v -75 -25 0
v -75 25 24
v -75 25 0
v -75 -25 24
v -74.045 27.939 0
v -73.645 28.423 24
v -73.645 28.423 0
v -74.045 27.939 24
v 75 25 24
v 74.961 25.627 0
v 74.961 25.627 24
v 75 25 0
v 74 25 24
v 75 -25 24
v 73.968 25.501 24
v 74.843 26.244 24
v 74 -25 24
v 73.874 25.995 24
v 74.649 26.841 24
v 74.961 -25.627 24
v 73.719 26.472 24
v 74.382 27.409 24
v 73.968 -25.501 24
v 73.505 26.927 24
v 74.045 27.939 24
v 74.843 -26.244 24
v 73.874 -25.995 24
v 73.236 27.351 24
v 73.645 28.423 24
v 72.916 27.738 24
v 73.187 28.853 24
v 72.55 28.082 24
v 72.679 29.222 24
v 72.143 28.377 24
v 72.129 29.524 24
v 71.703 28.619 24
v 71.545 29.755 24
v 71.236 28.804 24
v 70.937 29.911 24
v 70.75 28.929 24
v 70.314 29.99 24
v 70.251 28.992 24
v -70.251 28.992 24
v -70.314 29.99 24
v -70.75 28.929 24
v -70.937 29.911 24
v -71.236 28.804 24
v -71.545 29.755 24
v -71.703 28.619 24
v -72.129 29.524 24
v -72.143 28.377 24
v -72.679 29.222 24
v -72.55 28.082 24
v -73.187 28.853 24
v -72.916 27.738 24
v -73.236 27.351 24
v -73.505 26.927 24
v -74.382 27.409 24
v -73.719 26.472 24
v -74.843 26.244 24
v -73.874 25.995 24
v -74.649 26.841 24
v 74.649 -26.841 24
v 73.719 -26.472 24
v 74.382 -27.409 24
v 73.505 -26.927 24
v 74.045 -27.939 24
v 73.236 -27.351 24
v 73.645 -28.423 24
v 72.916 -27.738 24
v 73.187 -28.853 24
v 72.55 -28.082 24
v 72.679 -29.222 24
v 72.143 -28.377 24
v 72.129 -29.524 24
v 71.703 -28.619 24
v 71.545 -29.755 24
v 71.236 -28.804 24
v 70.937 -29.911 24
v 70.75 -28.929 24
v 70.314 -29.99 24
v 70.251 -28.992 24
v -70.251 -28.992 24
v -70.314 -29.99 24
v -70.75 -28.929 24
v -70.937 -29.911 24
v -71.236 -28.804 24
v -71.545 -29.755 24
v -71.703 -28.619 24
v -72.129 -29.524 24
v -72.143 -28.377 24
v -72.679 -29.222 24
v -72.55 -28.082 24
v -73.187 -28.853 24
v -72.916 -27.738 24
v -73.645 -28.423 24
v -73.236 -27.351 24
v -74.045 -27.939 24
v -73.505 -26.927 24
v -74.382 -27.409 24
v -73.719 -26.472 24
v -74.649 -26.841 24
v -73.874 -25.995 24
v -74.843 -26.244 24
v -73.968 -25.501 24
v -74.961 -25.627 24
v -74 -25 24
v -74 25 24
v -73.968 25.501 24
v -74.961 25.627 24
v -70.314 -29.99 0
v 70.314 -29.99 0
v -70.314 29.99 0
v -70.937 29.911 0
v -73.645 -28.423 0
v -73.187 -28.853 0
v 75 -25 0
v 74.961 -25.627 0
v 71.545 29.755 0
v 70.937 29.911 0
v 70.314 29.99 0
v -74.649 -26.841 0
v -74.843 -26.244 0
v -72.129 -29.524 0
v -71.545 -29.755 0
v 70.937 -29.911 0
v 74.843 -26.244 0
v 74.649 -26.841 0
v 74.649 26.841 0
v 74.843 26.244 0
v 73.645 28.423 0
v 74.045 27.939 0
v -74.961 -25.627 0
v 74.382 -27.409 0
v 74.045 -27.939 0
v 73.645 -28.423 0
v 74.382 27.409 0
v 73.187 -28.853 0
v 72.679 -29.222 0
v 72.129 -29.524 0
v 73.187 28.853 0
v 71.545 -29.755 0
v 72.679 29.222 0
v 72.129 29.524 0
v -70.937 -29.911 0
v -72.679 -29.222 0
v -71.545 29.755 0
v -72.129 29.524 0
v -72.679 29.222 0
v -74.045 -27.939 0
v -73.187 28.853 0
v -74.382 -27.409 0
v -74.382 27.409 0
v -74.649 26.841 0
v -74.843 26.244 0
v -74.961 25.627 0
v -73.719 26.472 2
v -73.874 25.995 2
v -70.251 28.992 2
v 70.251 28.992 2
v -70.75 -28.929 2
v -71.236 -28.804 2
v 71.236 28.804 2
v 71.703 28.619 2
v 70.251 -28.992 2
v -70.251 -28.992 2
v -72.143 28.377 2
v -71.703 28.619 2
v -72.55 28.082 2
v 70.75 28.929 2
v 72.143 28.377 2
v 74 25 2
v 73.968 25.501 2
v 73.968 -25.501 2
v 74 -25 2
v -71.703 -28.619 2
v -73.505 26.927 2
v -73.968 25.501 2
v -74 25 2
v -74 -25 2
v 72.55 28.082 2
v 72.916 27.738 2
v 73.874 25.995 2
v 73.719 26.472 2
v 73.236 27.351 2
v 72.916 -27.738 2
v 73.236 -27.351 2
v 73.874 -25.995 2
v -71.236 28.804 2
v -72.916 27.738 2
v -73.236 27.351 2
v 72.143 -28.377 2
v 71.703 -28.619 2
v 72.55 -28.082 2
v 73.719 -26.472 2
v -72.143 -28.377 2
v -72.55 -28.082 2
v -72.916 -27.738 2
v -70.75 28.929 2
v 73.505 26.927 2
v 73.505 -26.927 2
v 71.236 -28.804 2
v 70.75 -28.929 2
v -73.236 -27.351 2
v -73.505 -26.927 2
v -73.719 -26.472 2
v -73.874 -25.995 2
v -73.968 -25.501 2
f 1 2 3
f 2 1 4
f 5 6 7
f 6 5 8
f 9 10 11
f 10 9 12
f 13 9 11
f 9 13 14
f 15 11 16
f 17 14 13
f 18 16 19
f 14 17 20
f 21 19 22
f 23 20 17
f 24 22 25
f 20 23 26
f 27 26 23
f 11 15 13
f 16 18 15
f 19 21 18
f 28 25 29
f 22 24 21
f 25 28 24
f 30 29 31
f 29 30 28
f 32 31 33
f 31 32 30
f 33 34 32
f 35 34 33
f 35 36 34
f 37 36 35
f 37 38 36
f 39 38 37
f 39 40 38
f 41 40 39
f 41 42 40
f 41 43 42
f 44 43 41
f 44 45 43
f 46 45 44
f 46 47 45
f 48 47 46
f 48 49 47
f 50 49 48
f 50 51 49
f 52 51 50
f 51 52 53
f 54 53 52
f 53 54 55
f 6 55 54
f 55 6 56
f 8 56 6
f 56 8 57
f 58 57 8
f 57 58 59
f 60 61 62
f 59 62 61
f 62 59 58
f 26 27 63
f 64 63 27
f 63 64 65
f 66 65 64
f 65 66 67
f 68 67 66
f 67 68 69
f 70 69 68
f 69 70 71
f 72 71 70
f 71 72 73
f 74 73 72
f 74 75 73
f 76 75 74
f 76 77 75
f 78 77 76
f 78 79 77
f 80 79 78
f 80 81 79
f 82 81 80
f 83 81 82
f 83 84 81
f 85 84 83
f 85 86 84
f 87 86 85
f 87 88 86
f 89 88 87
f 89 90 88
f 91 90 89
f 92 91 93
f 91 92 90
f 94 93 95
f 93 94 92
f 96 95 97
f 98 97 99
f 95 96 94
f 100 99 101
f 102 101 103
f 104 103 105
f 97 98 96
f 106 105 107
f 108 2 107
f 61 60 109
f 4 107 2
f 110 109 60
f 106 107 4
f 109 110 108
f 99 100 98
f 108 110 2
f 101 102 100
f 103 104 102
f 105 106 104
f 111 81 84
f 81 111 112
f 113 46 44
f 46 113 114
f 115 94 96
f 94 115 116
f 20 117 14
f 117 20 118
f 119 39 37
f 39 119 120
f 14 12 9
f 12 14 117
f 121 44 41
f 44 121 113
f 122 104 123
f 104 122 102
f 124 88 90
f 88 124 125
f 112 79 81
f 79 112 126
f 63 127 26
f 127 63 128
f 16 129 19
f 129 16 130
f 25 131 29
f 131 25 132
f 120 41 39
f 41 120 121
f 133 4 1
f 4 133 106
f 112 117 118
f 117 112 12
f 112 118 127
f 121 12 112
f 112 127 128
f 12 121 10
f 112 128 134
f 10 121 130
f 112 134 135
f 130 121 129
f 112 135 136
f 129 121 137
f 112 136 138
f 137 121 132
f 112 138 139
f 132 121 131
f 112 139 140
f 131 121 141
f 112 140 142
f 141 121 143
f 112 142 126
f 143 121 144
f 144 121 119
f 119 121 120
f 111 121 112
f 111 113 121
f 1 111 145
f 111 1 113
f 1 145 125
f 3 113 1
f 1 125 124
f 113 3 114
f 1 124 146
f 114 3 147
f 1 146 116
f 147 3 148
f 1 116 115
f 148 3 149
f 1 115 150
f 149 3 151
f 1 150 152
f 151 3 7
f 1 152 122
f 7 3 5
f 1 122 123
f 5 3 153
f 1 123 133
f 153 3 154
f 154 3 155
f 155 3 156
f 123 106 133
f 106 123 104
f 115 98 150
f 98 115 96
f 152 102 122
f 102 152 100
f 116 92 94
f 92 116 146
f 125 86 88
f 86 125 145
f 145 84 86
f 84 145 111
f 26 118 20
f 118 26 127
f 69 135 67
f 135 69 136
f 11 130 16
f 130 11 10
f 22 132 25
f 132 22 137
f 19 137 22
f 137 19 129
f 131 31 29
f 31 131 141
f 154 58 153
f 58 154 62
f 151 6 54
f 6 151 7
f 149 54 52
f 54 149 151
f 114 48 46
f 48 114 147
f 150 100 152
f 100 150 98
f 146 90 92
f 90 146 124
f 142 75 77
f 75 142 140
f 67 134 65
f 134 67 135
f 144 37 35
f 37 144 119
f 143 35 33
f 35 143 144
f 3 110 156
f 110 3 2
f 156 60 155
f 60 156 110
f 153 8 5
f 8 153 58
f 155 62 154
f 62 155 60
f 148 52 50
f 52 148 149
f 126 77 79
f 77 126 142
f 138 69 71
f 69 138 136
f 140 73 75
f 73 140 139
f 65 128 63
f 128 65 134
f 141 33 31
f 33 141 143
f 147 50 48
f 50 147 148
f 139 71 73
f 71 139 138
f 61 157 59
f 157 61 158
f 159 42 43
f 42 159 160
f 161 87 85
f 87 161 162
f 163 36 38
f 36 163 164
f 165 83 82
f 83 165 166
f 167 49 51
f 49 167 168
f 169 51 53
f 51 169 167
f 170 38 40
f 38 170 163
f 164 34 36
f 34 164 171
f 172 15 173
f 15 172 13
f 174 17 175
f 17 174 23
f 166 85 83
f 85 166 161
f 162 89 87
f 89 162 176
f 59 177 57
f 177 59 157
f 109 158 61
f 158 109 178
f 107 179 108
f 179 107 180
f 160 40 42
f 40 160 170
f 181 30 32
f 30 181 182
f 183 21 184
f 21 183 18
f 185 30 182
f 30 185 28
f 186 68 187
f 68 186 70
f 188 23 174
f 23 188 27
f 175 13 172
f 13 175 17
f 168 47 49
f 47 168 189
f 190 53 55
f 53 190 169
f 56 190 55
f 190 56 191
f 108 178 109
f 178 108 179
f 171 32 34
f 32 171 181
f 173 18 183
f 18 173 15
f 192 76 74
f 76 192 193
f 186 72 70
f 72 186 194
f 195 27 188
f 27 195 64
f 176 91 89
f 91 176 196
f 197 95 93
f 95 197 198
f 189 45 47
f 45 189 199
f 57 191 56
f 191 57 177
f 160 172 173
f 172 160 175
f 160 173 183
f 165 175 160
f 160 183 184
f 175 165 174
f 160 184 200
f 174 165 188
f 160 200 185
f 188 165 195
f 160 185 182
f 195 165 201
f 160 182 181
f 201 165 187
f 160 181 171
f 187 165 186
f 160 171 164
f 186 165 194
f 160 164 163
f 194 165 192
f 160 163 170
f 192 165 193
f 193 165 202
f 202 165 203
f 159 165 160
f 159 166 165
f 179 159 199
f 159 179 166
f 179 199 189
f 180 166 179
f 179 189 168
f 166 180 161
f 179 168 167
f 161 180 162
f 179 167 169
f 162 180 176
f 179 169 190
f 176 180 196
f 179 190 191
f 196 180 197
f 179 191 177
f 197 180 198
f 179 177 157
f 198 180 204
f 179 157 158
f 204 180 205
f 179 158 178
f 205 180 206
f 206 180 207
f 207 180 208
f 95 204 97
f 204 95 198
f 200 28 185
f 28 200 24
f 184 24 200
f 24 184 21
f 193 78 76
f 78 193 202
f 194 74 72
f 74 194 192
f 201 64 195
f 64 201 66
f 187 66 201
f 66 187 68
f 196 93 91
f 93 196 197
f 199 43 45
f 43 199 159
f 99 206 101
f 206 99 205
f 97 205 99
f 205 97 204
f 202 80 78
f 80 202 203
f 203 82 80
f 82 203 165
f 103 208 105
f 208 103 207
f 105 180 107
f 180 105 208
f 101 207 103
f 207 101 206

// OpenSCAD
$fn = 50;


difference() {
	union() {
		hull() {
			translate(v = [-70.0000000000, 25.0000000000, 0]) {
				cylinder(h = 24, r = 5);
			}
			translate(v = [70.0000000000, 25.0000000000, 0]) {
				cylinder(h = 24, r = 5);
			}
			translate(v = [-70.0000000000, -25.0000000000, 0]) {
				cylinder(h = 24, r = 5);
			}
			translate(v = [70.0000000000, -25.0000000000, 0]) {
				cylinder(h = 24, r = 5);
			}
		}
	}
	union() {
		translate(v = [0, 0, 2]) {
			hull() {
				translate(v = [-70.0000000000, 25.0000000000, 0]) {
					cylinder(h = 22, r = 4);
				}
				translate(v = [70.0000000000, 25.0000000000, 0]) {
					cylinder(h = 22, r = 4);
				}
				translate(v = [-70.0000000000, -25.0000000000, 0]) {
					cylinder(h = 22, r = 4);
				}
				translate(v = [70.0000000000, -25.0000000000, 0]) {
					cylinder(h = 22, r = 4);
				}
			}
		}
	}
}
